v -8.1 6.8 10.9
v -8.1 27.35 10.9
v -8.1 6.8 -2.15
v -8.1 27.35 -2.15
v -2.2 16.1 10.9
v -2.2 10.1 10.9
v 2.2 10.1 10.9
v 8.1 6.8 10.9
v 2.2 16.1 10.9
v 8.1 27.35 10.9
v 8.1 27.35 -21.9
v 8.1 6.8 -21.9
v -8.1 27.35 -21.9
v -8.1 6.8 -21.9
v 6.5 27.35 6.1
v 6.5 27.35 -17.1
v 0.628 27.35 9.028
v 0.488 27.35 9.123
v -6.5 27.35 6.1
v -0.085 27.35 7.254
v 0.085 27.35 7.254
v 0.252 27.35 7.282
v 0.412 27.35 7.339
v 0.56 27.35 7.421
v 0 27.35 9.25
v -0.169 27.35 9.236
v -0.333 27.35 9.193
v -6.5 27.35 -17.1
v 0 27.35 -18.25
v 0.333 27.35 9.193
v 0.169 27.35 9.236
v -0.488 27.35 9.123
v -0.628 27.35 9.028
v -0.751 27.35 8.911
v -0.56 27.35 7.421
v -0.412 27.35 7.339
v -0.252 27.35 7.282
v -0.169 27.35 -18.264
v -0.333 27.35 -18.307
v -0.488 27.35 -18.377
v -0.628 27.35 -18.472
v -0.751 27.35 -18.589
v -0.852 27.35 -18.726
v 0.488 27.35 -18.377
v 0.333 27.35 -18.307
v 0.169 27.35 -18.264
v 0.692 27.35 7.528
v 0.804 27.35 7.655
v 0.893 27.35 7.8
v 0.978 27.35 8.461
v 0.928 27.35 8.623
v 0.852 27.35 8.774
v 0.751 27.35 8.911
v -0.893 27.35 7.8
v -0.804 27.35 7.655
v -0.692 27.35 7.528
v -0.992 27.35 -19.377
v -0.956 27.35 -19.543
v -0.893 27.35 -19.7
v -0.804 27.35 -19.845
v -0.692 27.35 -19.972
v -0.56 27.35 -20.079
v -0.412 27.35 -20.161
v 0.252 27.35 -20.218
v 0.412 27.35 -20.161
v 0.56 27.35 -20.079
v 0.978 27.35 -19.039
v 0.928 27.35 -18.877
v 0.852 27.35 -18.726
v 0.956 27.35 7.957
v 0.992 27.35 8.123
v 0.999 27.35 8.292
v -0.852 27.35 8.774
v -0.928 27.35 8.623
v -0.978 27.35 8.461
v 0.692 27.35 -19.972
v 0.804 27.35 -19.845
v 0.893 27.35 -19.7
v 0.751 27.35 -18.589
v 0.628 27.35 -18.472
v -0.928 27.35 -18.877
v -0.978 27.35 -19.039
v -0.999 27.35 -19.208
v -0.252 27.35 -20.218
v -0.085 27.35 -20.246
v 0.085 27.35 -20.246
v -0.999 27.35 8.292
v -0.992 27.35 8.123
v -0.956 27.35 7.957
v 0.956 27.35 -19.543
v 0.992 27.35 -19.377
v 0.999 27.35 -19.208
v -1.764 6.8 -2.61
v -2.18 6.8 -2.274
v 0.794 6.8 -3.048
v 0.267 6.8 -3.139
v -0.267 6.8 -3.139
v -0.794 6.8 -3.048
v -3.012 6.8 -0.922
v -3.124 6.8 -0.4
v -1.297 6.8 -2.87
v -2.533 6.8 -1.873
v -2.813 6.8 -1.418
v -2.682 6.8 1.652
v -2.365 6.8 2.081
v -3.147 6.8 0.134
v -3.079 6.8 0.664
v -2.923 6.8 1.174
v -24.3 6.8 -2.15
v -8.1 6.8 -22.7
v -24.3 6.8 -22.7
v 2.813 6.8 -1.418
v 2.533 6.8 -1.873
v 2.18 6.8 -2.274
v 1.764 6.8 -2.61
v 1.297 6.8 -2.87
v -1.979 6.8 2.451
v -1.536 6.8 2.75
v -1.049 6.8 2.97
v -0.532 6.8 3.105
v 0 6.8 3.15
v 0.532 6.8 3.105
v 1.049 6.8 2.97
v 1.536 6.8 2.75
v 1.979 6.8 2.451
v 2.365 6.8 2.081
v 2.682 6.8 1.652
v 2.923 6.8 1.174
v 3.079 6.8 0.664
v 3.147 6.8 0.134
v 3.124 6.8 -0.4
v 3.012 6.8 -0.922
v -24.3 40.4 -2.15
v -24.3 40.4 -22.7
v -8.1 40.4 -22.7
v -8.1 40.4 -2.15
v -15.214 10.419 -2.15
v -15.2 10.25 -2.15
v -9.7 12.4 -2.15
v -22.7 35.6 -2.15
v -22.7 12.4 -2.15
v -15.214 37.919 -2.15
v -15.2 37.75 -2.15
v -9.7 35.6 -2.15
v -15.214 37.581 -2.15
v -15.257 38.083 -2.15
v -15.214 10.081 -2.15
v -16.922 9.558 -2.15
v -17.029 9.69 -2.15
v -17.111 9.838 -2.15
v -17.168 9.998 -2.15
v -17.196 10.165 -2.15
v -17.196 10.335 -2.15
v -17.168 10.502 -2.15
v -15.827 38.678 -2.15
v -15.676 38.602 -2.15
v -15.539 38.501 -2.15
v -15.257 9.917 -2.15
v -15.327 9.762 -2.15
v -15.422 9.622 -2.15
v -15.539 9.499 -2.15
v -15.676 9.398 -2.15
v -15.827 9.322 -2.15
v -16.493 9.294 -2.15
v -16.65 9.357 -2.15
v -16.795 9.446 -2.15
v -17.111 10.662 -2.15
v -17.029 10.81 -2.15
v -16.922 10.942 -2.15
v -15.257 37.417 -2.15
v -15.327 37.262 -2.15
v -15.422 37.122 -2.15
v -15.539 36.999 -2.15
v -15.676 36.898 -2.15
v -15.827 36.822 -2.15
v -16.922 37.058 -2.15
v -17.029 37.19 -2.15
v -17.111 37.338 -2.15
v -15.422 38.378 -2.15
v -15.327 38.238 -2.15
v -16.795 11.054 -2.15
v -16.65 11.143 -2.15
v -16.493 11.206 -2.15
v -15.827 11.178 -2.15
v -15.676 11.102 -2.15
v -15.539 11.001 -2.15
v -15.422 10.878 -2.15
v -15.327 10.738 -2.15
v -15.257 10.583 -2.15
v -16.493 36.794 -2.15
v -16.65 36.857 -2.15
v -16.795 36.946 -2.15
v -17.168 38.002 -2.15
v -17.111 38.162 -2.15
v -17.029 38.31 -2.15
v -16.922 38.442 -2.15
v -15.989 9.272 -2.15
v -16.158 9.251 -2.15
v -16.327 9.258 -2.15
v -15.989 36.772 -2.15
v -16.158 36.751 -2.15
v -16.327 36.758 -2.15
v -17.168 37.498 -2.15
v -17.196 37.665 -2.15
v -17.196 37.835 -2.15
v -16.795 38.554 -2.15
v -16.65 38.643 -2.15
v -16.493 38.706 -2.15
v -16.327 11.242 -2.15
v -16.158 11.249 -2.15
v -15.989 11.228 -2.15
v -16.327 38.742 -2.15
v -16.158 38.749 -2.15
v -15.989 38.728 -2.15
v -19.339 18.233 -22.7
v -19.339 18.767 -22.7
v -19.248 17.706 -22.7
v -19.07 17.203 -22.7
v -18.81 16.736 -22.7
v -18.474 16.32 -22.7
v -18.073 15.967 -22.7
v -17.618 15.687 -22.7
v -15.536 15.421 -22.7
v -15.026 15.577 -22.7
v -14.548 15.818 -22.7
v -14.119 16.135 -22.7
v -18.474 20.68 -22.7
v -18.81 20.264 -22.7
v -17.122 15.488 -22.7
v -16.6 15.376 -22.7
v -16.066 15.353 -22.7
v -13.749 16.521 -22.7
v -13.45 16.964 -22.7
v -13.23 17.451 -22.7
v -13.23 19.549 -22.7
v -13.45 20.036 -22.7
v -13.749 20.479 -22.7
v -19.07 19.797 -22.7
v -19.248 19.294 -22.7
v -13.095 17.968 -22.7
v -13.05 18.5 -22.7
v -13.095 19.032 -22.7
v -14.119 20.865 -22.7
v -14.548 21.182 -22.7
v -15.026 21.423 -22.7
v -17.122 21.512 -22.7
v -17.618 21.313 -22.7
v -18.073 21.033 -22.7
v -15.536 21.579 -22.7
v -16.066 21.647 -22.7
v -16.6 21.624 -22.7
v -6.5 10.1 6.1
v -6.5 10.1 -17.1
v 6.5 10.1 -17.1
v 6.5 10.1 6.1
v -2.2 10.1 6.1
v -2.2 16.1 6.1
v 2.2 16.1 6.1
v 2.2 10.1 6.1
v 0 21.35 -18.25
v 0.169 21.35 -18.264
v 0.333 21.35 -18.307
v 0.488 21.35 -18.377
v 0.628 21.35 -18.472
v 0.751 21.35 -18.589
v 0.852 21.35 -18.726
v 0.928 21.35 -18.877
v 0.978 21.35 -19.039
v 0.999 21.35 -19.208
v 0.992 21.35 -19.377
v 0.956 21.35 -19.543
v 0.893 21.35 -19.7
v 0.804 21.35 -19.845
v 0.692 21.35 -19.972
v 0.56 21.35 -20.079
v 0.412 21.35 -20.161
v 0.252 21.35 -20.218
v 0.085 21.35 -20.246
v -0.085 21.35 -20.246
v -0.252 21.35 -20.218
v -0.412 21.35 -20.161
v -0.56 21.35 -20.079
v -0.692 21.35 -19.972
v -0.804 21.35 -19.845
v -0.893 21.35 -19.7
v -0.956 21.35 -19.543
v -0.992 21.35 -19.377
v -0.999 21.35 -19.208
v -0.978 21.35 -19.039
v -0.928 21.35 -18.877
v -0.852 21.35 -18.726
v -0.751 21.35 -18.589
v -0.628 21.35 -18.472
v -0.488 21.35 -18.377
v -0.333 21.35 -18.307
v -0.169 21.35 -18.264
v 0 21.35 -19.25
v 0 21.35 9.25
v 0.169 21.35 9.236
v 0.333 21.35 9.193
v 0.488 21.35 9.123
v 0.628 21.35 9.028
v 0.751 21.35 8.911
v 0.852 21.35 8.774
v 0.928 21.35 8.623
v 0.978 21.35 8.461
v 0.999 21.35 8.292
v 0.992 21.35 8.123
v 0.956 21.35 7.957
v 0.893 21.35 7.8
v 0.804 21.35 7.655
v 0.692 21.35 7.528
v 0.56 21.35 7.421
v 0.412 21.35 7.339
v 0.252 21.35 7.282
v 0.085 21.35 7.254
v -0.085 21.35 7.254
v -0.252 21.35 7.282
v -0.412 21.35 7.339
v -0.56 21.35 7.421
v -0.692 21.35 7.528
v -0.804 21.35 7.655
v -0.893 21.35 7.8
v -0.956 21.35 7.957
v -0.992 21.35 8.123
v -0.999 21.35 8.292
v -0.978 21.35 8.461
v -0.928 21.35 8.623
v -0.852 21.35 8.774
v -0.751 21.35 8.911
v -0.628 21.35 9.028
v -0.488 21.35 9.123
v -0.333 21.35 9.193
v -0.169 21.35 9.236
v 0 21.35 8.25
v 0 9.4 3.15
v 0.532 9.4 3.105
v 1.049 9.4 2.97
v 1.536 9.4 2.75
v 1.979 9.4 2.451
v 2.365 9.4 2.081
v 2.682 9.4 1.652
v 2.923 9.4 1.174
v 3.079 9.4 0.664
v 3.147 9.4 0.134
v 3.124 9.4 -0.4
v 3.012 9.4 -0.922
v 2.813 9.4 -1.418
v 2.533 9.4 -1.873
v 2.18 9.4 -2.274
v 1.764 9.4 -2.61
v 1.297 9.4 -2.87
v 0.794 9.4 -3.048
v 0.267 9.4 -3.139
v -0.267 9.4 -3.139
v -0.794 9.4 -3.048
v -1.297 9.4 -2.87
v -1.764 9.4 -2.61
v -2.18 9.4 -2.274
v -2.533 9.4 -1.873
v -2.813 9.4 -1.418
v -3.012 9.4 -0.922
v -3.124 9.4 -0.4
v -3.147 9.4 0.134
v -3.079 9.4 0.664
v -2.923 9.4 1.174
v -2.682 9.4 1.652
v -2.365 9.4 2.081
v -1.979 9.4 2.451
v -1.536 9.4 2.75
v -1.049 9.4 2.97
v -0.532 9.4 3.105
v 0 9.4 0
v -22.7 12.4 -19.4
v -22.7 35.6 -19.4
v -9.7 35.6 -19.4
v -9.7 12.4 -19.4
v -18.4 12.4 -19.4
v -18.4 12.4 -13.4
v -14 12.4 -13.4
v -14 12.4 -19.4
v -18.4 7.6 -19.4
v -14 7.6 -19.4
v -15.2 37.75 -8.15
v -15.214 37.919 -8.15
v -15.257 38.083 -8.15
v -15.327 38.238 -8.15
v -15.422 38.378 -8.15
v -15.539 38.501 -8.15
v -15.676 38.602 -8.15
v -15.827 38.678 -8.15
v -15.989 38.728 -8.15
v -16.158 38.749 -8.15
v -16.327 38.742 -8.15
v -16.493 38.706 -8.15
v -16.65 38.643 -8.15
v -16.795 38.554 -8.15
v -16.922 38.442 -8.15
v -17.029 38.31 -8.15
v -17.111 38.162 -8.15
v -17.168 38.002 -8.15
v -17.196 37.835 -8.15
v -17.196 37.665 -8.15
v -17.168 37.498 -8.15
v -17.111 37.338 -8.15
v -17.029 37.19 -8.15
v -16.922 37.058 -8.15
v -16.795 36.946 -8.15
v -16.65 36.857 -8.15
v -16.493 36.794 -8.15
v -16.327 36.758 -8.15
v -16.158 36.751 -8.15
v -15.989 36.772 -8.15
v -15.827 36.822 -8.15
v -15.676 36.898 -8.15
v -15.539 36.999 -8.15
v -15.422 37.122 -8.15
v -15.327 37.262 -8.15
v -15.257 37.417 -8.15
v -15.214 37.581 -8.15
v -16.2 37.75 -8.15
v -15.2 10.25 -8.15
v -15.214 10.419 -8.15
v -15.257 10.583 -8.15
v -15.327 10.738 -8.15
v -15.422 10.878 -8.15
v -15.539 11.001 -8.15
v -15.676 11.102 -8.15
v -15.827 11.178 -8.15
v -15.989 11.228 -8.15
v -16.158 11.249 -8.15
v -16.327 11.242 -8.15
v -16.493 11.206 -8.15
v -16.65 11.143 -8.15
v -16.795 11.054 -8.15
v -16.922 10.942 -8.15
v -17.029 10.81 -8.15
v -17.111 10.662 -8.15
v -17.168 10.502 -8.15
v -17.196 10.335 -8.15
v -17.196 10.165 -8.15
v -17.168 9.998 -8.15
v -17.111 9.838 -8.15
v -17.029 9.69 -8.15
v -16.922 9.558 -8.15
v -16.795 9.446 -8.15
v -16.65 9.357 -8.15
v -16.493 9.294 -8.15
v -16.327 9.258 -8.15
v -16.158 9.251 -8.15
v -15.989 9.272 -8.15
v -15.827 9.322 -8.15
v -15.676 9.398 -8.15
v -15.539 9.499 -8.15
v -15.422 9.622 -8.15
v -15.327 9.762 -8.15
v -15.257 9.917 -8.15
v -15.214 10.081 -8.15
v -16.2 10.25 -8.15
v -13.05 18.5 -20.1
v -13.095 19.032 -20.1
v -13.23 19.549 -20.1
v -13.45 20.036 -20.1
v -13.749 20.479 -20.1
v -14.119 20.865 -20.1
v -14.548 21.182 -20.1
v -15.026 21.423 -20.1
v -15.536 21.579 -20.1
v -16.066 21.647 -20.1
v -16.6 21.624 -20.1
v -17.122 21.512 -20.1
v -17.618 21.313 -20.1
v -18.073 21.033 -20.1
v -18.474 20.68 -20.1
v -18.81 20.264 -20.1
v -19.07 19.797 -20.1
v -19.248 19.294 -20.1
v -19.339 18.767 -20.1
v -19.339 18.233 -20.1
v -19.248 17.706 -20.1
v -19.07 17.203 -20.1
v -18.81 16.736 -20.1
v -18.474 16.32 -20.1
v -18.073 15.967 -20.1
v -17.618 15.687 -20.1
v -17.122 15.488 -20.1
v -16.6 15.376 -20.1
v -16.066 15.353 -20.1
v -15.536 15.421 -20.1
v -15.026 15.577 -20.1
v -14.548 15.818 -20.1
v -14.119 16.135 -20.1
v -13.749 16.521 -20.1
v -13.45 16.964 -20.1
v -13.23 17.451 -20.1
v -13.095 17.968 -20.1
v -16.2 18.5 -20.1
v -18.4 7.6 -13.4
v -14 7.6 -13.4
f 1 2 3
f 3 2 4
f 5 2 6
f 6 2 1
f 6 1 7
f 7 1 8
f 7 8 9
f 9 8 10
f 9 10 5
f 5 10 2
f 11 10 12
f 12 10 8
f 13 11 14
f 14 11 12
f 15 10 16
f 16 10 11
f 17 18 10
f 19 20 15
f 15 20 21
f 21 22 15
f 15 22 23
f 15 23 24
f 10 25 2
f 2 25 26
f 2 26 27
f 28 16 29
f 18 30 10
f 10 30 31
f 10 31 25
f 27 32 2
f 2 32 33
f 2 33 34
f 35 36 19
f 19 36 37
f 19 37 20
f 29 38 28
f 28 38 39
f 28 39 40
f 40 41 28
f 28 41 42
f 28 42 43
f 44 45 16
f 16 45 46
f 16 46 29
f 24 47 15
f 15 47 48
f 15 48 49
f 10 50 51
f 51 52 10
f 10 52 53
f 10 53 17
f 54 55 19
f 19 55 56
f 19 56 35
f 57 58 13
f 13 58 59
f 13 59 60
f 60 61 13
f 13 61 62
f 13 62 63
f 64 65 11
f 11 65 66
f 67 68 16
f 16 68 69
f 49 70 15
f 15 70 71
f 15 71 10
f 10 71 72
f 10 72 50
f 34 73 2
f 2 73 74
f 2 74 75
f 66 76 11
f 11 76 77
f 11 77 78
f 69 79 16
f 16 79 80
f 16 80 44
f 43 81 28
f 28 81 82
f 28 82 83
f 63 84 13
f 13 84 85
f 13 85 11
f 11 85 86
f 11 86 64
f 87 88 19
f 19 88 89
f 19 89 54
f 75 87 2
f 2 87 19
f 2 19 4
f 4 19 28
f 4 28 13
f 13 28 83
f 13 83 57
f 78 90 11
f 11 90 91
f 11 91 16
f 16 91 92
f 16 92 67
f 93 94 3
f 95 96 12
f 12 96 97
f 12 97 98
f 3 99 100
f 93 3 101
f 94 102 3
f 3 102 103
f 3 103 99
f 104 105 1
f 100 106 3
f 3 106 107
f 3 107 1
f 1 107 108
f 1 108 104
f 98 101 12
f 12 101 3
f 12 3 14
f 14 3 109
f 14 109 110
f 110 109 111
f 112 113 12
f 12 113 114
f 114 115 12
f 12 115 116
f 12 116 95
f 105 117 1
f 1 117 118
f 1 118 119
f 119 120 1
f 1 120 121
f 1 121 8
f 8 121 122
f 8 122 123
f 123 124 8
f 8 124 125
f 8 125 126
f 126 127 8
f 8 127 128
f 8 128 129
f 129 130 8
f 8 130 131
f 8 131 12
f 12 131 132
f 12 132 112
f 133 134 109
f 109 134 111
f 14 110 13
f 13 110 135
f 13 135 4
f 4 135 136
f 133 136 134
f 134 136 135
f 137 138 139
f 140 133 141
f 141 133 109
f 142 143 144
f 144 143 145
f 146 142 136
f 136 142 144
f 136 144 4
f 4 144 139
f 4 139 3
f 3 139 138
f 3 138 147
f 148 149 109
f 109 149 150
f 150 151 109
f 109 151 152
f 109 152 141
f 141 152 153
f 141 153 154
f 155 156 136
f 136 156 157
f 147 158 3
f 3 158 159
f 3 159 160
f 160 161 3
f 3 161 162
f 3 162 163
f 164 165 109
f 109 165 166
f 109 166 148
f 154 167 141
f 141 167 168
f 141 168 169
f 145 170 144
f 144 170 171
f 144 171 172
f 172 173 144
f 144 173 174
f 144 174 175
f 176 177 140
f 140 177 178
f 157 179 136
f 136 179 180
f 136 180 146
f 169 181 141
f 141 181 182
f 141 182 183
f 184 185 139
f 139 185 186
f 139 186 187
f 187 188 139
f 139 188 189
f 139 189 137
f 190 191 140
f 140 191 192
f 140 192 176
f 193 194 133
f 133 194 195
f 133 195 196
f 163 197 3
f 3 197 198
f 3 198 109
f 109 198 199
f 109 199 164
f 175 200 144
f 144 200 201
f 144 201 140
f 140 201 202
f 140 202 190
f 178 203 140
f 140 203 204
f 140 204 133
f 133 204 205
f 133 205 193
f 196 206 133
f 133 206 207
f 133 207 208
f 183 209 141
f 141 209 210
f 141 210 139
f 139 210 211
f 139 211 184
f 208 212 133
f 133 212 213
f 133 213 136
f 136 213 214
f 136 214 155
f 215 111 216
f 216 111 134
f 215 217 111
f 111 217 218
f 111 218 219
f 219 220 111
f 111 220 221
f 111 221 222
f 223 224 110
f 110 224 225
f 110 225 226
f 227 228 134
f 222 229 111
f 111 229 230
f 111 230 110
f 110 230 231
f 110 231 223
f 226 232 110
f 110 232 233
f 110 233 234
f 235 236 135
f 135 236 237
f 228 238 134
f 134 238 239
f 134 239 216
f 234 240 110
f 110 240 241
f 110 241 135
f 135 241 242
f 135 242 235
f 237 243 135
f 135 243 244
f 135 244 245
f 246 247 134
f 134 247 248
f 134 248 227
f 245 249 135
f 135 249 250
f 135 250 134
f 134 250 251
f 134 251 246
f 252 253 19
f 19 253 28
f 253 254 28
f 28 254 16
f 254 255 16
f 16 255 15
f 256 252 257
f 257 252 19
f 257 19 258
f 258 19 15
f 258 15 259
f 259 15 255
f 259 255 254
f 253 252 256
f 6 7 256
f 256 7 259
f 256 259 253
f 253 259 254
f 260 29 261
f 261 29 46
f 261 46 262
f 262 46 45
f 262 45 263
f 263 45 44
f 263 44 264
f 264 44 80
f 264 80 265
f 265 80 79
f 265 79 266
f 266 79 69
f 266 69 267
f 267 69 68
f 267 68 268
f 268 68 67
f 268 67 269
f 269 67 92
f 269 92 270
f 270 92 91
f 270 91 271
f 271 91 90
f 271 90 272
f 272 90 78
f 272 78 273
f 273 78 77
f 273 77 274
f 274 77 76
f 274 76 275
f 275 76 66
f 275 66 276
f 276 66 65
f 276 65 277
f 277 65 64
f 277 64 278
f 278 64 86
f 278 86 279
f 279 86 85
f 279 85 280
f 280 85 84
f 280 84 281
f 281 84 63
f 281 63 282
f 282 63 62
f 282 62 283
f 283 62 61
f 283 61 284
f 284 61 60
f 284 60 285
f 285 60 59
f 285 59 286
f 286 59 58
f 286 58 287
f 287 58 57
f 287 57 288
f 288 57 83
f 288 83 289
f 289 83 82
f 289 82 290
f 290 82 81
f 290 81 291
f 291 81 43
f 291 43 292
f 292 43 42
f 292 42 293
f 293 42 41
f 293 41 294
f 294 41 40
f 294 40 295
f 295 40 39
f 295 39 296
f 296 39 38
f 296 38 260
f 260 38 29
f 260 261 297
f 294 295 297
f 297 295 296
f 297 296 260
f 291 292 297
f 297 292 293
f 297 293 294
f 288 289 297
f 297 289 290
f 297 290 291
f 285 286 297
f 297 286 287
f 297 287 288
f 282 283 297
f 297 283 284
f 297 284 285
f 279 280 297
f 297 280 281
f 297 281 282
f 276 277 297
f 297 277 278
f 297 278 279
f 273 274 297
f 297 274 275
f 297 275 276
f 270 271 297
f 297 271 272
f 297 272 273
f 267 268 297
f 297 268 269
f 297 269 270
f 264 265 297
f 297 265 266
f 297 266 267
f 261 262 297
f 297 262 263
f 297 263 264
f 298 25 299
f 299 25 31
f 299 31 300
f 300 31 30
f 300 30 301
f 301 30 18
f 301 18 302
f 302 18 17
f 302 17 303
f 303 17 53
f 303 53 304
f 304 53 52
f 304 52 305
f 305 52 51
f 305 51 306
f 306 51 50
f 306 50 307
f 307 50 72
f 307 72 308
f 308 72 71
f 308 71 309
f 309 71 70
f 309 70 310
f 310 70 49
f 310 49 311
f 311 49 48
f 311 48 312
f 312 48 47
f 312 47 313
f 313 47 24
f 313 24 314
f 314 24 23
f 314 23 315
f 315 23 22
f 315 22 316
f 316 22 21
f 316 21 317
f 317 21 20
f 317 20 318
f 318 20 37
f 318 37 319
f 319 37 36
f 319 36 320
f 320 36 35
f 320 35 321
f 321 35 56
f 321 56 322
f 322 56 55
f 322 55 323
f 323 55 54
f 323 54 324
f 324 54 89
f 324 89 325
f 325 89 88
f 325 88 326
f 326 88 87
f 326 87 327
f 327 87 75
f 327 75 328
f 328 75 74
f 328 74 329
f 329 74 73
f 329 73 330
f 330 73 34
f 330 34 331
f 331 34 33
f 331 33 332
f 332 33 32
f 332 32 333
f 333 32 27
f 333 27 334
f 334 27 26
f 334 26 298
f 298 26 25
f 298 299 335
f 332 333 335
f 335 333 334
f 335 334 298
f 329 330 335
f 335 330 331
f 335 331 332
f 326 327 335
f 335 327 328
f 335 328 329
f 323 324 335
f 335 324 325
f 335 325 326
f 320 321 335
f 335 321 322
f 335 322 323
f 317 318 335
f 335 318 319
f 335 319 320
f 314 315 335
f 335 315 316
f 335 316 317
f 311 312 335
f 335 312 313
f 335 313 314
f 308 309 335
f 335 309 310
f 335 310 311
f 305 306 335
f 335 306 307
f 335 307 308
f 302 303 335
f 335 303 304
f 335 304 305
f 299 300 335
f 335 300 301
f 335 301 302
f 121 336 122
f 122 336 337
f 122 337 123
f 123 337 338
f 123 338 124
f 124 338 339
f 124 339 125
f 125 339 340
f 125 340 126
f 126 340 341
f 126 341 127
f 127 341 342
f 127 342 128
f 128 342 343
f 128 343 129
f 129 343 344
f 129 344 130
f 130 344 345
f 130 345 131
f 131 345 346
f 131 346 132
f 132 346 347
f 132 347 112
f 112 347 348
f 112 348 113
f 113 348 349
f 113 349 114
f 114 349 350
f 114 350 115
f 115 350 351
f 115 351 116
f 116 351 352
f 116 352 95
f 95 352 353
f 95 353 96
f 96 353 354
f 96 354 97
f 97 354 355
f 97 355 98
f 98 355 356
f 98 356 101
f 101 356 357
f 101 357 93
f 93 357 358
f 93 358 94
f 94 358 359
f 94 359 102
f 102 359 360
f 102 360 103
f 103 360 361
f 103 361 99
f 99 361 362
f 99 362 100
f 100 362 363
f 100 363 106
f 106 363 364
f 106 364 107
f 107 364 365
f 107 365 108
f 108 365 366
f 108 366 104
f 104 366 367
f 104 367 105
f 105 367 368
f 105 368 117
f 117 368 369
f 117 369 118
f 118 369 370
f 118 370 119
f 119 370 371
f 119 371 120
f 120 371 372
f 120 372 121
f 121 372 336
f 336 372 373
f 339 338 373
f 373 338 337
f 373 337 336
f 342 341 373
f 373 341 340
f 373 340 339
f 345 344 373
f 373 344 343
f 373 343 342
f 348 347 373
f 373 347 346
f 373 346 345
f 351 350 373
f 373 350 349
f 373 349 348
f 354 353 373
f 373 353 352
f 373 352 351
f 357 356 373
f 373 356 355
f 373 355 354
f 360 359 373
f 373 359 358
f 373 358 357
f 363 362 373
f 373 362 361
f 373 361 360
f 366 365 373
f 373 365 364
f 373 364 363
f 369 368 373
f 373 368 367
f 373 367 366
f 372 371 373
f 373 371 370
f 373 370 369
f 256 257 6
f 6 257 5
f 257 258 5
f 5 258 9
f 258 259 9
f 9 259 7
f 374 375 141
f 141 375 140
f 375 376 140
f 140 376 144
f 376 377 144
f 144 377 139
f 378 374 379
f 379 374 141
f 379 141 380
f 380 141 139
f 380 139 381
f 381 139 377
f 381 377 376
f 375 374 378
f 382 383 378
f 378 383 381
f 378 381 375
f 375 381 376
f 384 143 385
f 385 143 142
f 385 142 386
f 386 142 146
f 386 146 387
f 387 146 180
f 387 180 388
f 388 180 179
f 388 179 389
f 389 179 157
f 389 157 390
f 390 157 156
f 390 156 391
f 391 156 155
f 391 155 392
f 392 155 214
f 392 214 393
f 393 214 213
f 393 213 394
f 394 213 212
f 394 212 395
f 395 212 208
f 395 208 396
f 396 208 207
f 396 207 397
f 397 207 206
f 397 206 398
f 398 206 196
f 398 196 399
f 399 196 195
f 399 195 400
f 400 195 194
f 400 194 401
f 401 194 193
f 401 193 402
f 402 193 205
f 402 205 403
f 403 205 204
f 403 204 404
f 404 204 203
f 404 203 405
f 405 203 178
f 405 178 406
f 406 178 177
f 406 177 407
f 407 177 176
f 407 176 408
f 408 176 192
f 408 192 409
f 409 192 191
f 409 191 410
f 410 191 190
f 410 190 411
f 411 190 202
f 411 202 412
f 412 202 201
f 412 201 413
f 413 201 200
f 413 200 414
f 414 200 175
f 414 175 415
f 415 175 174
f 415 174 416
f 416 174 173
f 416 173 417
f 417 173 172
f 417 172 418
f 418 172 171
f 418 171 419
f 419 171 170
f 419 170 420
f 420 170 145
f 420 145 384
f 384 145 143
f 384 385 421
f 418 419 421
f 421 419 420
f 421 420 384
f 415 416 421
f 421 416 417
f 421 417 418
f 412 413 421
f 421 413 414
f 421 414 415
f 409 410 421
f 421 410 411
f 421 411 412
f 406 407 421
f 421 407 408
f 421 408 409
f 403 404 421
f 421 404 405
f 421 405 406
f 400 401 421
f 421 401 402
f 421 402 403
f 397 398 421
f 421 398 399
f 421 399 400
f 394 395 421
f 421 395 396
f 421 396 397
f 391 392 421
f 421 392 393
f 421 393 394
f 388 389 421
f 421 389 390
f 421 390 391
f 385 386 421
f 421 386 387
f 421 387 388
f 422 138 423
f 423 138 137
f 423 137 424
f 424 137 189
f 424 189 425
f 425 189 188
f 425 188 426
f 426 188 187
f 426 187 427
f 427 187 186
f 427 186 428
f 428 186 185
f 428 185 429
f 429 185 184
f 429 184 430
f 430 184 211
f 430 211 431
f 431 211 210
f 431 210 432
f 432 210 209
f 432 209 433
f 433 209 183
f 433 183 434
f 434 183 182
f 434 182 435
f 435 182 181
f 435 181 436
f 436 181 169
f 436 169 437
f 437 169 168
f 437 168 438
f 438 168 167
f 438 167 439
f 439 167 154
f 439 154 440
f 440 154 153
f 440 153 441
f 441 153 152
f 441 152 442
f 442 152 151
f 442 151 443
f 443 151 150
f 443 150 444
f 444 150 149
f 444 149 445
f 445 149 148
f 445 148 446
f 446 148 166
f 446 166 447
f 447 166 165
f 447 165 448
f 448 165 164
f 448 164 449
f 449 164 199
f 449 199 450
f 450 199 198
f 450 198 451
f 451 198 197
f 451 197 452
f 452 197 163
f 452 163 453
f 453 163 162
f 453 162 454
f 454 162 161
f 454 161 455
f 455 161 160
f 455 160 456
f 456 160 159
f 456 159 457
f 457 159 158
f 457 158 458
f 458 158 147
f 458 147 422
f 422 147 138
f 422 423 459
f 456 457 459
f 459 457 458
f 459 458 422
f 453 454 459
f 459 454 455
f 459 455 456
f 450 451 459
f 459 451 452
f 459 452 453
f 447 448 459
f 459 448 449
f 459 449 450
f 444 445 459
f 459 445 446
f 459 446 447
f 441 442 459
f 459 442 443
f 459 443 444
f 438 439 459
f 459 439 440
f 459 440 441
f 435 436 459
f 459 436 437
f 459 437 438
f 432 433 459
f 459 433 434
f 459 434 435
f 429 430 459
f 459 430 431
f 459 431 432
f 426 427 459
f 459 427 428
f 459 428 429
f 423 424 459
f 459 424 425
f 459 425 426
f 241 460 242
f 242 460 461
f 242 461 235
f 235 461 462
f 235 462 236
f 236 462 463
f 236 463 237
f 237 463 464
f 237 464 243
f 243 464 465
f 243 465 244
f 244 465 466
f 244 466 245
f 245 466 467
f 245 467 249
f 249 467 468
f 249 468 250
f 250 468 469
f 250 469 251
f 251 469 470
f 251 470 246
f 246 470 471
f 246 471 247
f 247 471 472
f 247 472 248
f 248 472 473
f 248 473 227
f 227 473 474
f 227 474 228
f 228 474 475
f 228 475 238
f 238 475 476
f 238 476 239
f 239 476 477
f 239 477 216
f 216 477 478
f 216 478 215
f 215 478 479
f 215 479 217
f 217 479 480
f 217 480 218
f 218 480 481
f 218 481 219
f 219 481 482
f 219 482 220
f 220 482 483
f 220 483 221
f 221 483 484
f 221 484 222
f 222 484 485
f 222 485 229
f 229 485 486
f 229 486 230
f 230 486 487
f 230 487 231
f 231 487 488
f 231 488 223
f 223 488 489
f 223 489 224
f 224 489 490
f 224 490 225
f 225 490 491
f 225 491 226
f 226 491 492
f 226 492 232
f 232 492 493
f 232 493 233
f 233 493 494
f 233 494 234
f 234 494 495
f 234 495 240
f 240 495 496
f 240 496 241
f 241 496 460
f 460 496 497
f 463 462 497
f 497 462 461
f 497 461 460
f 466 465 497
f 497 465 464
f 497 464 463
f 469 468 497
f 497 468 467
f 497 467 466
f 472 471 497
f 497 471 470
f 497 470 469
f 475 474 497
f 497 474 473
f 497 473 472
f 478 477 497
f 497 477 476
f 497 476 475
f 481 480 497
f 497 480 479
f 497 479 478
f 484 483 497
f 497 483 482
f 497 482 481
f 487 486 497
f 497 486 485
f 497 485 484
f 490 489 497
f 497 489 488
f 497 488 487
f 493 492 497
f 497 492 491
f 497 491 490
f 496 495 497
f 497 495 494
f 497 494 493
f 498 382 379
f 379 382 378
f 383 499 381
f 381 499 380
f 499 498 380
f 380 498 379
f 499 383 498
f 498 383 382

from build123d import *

# Parameters (mm, degrees)
BOSS_EXTRUDE1_START = 17.075
SKETCH1_W           = 16.2
SKETCH1_H           = 32.8
BOSS_EXTRUDE1_DEPTH = 10.275
BOSS_EXTRUDE2_START = -12.425
SKETCH2_W           = 16.2
SKETCH2_H           = 32.8
BOSS_EXTRUDE2_DEPTH = 10.275
BOSS_EXTRUDE3_START = 7.3
SKETCH3_W           = 16.2
SKETCH3_H           = 20.55
BOSS_EXTRUDE3_DEPTH = 0.5
CUT_EXTRUDE1_START  = 18.725
SKETCH4_W           = 13
SKETCH4_H           = 23.2
CUT_EXTRUDE1_DEPTH  = 8.625
CUT_EXTRUDE2_START  = 24.35
SKETCH5_R           = 1
CUT_EXTRUDE2_DEPTH  = 3
CUT_EXTRUDE3_START  = 24.35
SKETCH6_R           = 1
CUT_EXTRUDE3_DEPTH  = 3
CUT_EXTRUDE4_START  = 8.1
SKETCH7_R           = 3.15
CUT_EXTRUDE4_DEPTH  = 1.3
CUT_EXTRUDE5_START  = 8.5
SKETCH8_W           = 4.4
SKETCH8_H           = 6
CUT_EXTRUDE5_DEPTH  = 2.4
CUT_EXTRUDE6_START  = -10.775
SKETCH9_W           = 13
SKETCH9_H           = 23.2
CUT_EXTRUDE6_DEPTH  = 8.625
CUT_EXTRUDE7_START  = -5.15
SKETCH10_R          = 1
CUT_EXTRUDE7_DEPTH  = 3
CUT_EXTRUDE8_START  = -5.15
SKETCH11_R          = 1
CUT_EXTRUDE8_DEPTH  = 3
CUT_EXTRUDE9_START  = -21.4
SKETCH12_R          = 3.15
CUT_EXTRUDE9_DEPTH  = 1.3
CUT_EXTRUDE10_START = 10
SKETCH13_W          = 4.4
SKETCH13_H          = 6
CUT_EXTRUDE10_DEPTH = 2.4


with BuildPart() as part:
    # Sketch1 → Boss-Extrude1 (new, symmetric)
    with BuildSketch(Plane(origin=(0, 0, 0), x_dir=(1, 0, 0), z_dir=(0, 1, 0)).offset(BOSS_EXTRUDE1_START)):
        with Locations((0, 5.5)):
            Rectangle(SKETCH1_W, SKETCH1_H)
    extrude(amount=BOSS_EXTRUDE1_DEPTH, both=True)

    # Sketch2 → Boss-Extrude2 (add, symmetric)
    with BuildSketch(Plane.XY.offset(BOSS_EXTRUDE2_START)):
        with Locations((-16.2, 24)):
            Rectangle(SKETCH2_W, SKETCH2_H)
    extrude(amount=BOSS_EXTRUDE2_DEPTH, both=True)

    # Sketch3 → Boss-Extrude3 (add, symmetric)
    with BuildSketch(Plane(origin=(0, 0, 0), x_dir=(1, 0, 0), z_dir=(0, 1, 0)).offset(BOSS_EXTRUDE3_START)):
        with Locations((-16.2, 12.425)):
            Rectangle(SKETCH3_W, SKETCH3_H)
    extrude(amount=BOSS_EXTRUDE3_DEPTH, both=True)

    # Sketch4 → Cut-Extrude1 (cut, symmetric)
    with BuildSketch(Plane(origin=(0, 0, 0), x_dir=(1, 0, 0), z_dir=(0, 1, 0)).offset(CUT_EXTRUDE1_START)):
        with Locations((0, 5.5)):
            Rectangle(SKETCH4_W, SKETCH4_H)
    extrude(amount=CUT_EXTRUDE1_DEPTH, both=True, mode=Mode.SUBTRACT)

    # Sketch5 → Cut-Extrude2 (cut, symmetric)
    with BuildSketch(Plane(origin=(0, 0, 0), x_dir=(1, 0, 0), z_dir=(0, 1, 0)).offset(CUT_EXTRUDE2_START)):
        with Locations(Location((0, 19.25, 0), (0, 0, 270))):
            Circle(SKETCH5_R)
    extrude(amount=CUT_EXTRUDE2_DEPTH, both=True, mode=Mode.SUBTRACT)

    # Sketch6 → Cut-Extrude3 (cut, symmetric)
    with BuildSketch(Plane(origin=(0, 0, 0), x_dir=(1, 0, 0), z_dir=(0, 1, 0)).offset(CUT_EXTRUDE3_START)):
        with Locations(Location((0, -8.25, 0), (0, 0, 270))):
            Circle(SKETCH6_R)
    extrude(amount=CUT_EXTRUDE3_DEPTH, both=True, mode=Mode.SUBTRACT)

    # Sketch7 → Cut-Extrude4 (cut, symmetric)
    with BuildSketch(Plane(origin=(0, 0, 0), x_dir=(1, 0, 0), z_dir=(0, 1, 0)).offset(CUT_EXTRUDE4_START)):
        with Locations(Location((0, 0, 0), (0, 0, 270))):
            Circle(SKETCH7_R)
    extrude(amount=CUT_EXTRUDE4_DEPTH, both=True, mode=Mode.SUBTRACT)

    # Sketch8 → Cut-Extrude5 (cut, symmetric)
    with BuildSketch(Plane.XY.offset(CUT_EXTRUDE5_START)):
        with Locations((0, 13.1)):
            Rectangle(SKETCH8_W, SKETCH8_H)
    extrude(amount=CUT_EXTRUDE5_DEPTH, both=True, mode=Mode.SUBTRACT)

    # Sketch9 → Cut-Extrude6 (cut, symmetric)
    with BuildSketch(Plane.XY.offset(CUT_EXTRUDE6_START)):
        with Locations((-16.2, 24)):
            Rectangle(SKETCH9_W, SKETCH9_H)
    extrude(amount=CUT_EXTRUDE6_DEPTH, both=True, mode=Mode.SUBTRACT)

    # Sketch10 → Cut-Extrude7 (cut, symmetric)
    with BuildSketch(Plane.XY.offset(CUT_EXTRUDE7_START)):
        with Locations((-16.2, 37.75)):
            Circle(SKETCH10_R)
    extrude(amount=CUT_EXTRUDE7_DEPTH, both=True, mode=Mode.SUBTRACT)

    # Sketch11 → Cut-Extrude8 (cut, symmetric)
    with BuildSketch(Plane.XY.offset(CUT_EXTRUDE8_START)):
        with Locations((-16.2, 10.25)):
            Circle(SKETCH11_R)
    extrude(amount=CUT_EXTRUDE8_DEPTH, both=True, mode=Mode.SUBTRACT)

    # Sketch12 → Cut-Extrude9 (cut, symmetric)
    with BuildSketch(Plane.XY.offset(CUT_EXTRUDE9_START)):
        with Locations((-16.2, 18.5)):
            Circle(SKETCH12_R)
    extrude(amount=CUT_EXTRUDE9_DEPTH, both=True, mode=Mode.SUBTRACT)

    # Sketch13 → Cut-Extrude10 (cut, symmetric)
    with BuildSketch(Plane(origin=(0, 0, 0), x_dir=(1, 0, 0), z_dir=(0, 1, 0)).offset(CUT_EXTRUDE10_START)):
        with Locations((-16.2, 16.4)):
            Rectangle(SKETCH13_W, SKETCH13_H)
    extrude(amount=CUT_EXTRUDE10_DEPTH, both=True, mode=Mode.SUBTRACT)


solid = part.part
